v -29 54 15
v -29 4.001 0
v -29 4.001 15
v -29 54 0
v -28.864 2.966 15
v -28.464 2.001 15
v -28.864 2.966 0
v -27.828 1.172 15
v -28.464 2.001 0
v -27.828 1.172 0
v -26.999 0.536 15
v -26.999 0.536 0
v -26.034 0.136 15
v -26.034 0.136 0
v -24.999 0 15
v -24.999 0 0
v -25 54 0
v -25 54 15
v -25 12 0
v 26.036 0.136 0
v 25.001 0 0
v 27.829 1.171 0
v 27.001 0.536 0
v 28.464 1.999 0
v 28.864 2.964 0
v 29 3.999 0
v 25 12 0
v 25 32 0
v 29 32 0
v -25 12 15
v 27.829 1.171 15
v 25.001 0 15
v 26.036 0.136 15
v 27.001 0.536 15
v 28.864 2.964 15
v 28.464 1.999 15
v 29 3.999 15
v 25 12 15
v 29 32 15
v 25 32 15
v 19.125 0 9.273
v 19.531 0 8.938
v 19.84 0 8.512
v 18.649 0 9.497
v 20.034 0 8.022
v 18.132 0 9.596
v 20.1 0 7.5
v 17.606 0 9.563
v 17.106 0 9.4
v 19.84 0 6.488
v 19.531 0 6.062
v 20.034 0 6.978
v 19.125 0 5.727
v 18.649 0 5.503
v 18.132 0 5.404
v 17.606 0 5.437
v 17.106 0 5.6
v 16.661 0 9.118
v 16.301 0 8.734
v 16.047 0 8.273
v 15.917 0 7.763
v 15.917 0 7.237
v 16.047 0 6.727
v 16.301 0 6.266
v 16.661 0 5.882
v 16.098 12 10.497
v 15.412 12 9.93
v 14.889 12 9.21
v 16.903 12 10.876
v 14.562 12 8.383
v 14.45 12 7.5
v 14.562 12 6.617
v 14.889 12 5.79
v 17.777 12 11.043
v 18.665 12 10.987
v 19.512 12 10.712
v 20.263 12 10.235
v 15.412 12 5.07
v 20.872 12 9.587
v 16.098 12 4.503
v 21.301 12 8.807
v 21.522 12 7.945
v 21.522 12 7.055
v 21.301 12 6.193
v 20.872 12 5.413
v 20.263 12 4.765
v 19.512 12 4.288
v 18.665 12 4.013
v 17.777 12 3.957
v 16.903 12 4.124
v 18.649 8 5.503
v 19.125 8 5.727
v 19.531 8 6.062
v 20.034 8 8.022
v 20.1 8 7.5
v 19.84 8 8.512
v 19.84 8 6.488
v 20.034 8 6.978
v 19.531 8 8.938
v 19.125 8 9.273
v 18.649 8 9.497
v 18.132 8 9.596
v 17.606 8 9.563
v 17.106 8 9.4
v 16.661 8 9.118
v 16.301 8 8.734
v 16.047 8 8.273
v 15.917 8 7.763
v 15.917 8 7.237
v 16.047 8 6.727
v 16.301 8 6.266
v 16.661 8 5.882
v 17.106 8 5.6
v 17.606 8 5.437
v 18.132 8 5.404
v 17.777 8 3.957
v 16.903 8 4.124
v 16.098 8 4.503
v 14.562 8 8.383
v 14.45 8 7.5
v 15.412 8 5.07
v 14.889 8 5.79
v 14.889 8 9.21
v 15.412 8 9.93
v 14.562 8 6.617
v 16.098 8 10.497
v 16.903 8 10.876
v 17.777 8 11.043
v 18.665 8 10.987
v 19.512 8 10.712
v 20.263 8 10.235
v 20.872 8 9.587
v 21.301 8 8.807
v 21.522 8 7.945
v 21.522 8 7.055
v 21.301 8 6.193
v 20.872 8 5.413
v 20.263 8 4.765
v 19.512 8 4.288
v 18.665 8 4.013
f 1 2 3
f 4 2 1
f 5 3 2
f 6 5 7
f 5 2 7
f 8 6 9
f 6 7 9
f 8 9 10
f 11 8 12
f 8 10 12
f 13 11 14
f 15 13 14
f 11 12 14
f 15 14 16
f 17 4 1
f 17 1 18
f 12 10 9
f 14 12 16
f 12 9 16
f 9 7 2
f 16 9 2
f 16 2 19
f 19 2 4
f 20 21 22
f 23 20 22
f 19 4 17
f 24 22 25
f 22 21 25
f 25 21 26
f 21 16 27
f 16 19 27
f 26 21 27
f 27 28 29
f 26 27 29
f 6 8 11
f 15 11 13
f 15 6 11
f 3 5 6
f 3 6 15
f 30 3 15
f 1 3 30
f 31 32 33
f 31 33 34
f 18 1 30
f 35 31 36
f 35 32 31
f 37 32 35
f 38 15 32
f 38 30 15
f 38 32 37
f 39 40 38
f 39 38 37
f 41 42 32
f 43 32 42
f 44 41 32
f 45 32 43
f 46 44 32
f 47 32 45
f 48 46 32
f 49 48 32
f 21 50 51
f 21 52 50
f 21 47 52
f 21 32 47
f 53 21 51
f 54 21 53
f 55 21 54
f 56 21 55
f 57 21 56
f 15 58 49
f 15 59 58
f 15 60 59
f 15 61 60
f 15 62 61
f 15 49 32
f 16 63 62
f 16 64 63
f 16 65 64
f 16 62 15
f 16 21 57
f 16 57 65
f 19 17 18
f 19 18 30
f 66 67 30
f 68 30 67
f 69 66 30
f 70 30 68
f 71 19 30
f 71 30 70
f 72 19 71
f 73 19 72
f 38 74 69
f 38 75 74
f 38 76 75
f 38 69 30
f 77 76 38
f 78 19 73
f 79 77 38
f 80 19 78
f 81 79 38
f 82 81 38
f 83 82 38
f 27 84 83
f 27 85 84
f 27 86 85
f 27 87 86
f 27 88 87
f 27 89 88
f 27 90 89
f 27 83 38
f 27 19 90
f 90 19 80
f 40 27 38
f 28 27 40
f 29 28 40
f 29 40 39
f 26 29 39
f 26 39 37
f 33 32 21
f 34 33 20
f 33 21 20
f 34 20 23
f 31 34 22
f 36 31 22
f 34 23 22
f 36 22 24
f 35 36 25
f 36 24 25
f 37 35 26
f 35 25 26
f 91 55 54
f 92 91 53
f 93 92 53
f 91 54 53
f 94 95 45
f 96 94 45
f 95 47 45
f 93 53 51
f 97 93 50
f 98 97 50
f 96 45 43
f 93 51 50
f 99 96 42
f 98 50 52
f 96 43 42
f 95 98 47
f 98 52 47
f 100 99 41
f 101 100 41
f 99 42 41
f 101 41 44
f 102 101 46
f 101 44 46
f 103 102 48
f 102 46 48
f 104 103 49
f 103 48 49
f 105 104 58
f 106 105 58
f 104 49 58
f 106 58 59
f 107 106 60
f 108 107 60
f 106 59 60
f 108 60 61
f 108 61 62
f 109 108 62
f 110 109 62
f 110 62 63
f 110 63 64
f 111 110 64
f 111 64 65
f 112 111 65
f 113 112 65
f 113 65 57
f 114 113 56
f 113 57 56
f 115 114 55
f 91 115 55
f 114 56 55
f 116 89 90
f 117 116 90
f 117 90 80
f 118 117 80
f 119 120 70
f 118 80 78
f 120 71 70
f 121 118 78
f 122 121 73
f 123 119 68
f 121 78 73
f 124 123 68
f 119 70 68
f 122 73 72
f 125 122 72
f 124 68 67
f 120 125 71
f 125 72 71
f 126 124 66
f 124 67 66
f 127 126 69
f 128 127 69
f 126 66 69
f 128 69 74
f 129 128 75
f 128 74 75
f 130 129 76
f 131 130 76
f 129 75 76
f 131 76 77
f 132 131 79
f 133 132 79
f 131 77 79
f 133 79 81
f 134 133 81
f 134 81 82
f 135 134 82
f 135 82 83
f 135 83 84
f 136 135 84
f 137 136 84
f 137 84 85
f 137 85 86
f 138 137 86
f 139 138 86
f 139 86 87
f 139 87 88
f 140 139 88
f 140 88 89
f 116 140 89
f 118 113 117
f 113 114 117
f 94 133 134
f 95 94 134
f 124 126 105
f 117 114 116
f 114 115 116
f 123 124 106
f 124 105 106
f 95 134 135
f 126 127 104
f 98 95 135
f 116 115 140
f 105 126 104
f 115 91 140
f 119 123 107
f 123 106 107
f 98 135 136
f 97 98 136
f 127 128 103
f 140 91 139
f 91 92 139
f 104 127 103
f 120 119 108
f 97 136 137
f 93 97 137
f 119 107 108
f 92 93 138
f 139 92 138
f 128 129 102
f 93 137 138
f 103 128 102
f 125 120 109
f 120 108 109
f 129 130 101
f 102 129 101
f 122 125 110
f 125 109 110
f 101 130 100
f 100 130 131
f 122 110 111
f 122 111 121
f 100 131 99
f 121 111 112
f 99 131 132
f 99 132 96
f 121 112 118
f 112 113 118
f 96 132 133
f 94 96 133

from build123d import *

# Parameters (mm, degrees)
PAD_DEPTH       = 15
SKETCH001_R     = 2.1
POCKET_DEPTH    = 54.001
SKETCH002_R     = 3.55
POCKET001_DEPTH = 4


with BuildPart() as part:
    # Sketch → Pad (new body)
    with BuildSketch(Plane.XY):
        with BuildLine():
            Line((-25, 12), (25, 12))
            Line((25, 12), (25, 32))
            Line((25, 32), (29, 32))
            Line((29, 32), (29, 3.998833))
            ThreePointArc((25.001167, 0), (27.828769, 1.171231), (29, 3.998833))
            Line((25.001167, 0), (-24.998833, 0))
            ThreePointArc((-29, 4.001167), (-27.828085, 1.171915), (-24.998833, 0))
            Line((-29, 4.001167), (-29, 54))
            Line((-29, 54), (-25, 54))
            Line((-25, 54), (-25, 12))
        make_face()
    extrude(amount=PAD_DEPTH)

    # Sketch001 → Pocket (cut, through all)
    with BuildSketch(Plane.XZ):
        with Locations((18, 7.5)):
            Circle(SKETCH001_R)
    extrude(amount=-POCKET_DEPTH, mode=Mode.SUBTRACT)

    # Sketch002 → Pocket001 (cut)
    with BuildSketch(Plane(origin=(0, 12, 0), x_dir=(-1, 0, 0), z_dir=(0, 1, 0))):
        with Locations((-18, 7.5)):
            Circle(SKETCH002_R)
    extrude(amount=-POCKET001_DEPTH, mode=Mode.SUBTRACT)


solid = part.part
